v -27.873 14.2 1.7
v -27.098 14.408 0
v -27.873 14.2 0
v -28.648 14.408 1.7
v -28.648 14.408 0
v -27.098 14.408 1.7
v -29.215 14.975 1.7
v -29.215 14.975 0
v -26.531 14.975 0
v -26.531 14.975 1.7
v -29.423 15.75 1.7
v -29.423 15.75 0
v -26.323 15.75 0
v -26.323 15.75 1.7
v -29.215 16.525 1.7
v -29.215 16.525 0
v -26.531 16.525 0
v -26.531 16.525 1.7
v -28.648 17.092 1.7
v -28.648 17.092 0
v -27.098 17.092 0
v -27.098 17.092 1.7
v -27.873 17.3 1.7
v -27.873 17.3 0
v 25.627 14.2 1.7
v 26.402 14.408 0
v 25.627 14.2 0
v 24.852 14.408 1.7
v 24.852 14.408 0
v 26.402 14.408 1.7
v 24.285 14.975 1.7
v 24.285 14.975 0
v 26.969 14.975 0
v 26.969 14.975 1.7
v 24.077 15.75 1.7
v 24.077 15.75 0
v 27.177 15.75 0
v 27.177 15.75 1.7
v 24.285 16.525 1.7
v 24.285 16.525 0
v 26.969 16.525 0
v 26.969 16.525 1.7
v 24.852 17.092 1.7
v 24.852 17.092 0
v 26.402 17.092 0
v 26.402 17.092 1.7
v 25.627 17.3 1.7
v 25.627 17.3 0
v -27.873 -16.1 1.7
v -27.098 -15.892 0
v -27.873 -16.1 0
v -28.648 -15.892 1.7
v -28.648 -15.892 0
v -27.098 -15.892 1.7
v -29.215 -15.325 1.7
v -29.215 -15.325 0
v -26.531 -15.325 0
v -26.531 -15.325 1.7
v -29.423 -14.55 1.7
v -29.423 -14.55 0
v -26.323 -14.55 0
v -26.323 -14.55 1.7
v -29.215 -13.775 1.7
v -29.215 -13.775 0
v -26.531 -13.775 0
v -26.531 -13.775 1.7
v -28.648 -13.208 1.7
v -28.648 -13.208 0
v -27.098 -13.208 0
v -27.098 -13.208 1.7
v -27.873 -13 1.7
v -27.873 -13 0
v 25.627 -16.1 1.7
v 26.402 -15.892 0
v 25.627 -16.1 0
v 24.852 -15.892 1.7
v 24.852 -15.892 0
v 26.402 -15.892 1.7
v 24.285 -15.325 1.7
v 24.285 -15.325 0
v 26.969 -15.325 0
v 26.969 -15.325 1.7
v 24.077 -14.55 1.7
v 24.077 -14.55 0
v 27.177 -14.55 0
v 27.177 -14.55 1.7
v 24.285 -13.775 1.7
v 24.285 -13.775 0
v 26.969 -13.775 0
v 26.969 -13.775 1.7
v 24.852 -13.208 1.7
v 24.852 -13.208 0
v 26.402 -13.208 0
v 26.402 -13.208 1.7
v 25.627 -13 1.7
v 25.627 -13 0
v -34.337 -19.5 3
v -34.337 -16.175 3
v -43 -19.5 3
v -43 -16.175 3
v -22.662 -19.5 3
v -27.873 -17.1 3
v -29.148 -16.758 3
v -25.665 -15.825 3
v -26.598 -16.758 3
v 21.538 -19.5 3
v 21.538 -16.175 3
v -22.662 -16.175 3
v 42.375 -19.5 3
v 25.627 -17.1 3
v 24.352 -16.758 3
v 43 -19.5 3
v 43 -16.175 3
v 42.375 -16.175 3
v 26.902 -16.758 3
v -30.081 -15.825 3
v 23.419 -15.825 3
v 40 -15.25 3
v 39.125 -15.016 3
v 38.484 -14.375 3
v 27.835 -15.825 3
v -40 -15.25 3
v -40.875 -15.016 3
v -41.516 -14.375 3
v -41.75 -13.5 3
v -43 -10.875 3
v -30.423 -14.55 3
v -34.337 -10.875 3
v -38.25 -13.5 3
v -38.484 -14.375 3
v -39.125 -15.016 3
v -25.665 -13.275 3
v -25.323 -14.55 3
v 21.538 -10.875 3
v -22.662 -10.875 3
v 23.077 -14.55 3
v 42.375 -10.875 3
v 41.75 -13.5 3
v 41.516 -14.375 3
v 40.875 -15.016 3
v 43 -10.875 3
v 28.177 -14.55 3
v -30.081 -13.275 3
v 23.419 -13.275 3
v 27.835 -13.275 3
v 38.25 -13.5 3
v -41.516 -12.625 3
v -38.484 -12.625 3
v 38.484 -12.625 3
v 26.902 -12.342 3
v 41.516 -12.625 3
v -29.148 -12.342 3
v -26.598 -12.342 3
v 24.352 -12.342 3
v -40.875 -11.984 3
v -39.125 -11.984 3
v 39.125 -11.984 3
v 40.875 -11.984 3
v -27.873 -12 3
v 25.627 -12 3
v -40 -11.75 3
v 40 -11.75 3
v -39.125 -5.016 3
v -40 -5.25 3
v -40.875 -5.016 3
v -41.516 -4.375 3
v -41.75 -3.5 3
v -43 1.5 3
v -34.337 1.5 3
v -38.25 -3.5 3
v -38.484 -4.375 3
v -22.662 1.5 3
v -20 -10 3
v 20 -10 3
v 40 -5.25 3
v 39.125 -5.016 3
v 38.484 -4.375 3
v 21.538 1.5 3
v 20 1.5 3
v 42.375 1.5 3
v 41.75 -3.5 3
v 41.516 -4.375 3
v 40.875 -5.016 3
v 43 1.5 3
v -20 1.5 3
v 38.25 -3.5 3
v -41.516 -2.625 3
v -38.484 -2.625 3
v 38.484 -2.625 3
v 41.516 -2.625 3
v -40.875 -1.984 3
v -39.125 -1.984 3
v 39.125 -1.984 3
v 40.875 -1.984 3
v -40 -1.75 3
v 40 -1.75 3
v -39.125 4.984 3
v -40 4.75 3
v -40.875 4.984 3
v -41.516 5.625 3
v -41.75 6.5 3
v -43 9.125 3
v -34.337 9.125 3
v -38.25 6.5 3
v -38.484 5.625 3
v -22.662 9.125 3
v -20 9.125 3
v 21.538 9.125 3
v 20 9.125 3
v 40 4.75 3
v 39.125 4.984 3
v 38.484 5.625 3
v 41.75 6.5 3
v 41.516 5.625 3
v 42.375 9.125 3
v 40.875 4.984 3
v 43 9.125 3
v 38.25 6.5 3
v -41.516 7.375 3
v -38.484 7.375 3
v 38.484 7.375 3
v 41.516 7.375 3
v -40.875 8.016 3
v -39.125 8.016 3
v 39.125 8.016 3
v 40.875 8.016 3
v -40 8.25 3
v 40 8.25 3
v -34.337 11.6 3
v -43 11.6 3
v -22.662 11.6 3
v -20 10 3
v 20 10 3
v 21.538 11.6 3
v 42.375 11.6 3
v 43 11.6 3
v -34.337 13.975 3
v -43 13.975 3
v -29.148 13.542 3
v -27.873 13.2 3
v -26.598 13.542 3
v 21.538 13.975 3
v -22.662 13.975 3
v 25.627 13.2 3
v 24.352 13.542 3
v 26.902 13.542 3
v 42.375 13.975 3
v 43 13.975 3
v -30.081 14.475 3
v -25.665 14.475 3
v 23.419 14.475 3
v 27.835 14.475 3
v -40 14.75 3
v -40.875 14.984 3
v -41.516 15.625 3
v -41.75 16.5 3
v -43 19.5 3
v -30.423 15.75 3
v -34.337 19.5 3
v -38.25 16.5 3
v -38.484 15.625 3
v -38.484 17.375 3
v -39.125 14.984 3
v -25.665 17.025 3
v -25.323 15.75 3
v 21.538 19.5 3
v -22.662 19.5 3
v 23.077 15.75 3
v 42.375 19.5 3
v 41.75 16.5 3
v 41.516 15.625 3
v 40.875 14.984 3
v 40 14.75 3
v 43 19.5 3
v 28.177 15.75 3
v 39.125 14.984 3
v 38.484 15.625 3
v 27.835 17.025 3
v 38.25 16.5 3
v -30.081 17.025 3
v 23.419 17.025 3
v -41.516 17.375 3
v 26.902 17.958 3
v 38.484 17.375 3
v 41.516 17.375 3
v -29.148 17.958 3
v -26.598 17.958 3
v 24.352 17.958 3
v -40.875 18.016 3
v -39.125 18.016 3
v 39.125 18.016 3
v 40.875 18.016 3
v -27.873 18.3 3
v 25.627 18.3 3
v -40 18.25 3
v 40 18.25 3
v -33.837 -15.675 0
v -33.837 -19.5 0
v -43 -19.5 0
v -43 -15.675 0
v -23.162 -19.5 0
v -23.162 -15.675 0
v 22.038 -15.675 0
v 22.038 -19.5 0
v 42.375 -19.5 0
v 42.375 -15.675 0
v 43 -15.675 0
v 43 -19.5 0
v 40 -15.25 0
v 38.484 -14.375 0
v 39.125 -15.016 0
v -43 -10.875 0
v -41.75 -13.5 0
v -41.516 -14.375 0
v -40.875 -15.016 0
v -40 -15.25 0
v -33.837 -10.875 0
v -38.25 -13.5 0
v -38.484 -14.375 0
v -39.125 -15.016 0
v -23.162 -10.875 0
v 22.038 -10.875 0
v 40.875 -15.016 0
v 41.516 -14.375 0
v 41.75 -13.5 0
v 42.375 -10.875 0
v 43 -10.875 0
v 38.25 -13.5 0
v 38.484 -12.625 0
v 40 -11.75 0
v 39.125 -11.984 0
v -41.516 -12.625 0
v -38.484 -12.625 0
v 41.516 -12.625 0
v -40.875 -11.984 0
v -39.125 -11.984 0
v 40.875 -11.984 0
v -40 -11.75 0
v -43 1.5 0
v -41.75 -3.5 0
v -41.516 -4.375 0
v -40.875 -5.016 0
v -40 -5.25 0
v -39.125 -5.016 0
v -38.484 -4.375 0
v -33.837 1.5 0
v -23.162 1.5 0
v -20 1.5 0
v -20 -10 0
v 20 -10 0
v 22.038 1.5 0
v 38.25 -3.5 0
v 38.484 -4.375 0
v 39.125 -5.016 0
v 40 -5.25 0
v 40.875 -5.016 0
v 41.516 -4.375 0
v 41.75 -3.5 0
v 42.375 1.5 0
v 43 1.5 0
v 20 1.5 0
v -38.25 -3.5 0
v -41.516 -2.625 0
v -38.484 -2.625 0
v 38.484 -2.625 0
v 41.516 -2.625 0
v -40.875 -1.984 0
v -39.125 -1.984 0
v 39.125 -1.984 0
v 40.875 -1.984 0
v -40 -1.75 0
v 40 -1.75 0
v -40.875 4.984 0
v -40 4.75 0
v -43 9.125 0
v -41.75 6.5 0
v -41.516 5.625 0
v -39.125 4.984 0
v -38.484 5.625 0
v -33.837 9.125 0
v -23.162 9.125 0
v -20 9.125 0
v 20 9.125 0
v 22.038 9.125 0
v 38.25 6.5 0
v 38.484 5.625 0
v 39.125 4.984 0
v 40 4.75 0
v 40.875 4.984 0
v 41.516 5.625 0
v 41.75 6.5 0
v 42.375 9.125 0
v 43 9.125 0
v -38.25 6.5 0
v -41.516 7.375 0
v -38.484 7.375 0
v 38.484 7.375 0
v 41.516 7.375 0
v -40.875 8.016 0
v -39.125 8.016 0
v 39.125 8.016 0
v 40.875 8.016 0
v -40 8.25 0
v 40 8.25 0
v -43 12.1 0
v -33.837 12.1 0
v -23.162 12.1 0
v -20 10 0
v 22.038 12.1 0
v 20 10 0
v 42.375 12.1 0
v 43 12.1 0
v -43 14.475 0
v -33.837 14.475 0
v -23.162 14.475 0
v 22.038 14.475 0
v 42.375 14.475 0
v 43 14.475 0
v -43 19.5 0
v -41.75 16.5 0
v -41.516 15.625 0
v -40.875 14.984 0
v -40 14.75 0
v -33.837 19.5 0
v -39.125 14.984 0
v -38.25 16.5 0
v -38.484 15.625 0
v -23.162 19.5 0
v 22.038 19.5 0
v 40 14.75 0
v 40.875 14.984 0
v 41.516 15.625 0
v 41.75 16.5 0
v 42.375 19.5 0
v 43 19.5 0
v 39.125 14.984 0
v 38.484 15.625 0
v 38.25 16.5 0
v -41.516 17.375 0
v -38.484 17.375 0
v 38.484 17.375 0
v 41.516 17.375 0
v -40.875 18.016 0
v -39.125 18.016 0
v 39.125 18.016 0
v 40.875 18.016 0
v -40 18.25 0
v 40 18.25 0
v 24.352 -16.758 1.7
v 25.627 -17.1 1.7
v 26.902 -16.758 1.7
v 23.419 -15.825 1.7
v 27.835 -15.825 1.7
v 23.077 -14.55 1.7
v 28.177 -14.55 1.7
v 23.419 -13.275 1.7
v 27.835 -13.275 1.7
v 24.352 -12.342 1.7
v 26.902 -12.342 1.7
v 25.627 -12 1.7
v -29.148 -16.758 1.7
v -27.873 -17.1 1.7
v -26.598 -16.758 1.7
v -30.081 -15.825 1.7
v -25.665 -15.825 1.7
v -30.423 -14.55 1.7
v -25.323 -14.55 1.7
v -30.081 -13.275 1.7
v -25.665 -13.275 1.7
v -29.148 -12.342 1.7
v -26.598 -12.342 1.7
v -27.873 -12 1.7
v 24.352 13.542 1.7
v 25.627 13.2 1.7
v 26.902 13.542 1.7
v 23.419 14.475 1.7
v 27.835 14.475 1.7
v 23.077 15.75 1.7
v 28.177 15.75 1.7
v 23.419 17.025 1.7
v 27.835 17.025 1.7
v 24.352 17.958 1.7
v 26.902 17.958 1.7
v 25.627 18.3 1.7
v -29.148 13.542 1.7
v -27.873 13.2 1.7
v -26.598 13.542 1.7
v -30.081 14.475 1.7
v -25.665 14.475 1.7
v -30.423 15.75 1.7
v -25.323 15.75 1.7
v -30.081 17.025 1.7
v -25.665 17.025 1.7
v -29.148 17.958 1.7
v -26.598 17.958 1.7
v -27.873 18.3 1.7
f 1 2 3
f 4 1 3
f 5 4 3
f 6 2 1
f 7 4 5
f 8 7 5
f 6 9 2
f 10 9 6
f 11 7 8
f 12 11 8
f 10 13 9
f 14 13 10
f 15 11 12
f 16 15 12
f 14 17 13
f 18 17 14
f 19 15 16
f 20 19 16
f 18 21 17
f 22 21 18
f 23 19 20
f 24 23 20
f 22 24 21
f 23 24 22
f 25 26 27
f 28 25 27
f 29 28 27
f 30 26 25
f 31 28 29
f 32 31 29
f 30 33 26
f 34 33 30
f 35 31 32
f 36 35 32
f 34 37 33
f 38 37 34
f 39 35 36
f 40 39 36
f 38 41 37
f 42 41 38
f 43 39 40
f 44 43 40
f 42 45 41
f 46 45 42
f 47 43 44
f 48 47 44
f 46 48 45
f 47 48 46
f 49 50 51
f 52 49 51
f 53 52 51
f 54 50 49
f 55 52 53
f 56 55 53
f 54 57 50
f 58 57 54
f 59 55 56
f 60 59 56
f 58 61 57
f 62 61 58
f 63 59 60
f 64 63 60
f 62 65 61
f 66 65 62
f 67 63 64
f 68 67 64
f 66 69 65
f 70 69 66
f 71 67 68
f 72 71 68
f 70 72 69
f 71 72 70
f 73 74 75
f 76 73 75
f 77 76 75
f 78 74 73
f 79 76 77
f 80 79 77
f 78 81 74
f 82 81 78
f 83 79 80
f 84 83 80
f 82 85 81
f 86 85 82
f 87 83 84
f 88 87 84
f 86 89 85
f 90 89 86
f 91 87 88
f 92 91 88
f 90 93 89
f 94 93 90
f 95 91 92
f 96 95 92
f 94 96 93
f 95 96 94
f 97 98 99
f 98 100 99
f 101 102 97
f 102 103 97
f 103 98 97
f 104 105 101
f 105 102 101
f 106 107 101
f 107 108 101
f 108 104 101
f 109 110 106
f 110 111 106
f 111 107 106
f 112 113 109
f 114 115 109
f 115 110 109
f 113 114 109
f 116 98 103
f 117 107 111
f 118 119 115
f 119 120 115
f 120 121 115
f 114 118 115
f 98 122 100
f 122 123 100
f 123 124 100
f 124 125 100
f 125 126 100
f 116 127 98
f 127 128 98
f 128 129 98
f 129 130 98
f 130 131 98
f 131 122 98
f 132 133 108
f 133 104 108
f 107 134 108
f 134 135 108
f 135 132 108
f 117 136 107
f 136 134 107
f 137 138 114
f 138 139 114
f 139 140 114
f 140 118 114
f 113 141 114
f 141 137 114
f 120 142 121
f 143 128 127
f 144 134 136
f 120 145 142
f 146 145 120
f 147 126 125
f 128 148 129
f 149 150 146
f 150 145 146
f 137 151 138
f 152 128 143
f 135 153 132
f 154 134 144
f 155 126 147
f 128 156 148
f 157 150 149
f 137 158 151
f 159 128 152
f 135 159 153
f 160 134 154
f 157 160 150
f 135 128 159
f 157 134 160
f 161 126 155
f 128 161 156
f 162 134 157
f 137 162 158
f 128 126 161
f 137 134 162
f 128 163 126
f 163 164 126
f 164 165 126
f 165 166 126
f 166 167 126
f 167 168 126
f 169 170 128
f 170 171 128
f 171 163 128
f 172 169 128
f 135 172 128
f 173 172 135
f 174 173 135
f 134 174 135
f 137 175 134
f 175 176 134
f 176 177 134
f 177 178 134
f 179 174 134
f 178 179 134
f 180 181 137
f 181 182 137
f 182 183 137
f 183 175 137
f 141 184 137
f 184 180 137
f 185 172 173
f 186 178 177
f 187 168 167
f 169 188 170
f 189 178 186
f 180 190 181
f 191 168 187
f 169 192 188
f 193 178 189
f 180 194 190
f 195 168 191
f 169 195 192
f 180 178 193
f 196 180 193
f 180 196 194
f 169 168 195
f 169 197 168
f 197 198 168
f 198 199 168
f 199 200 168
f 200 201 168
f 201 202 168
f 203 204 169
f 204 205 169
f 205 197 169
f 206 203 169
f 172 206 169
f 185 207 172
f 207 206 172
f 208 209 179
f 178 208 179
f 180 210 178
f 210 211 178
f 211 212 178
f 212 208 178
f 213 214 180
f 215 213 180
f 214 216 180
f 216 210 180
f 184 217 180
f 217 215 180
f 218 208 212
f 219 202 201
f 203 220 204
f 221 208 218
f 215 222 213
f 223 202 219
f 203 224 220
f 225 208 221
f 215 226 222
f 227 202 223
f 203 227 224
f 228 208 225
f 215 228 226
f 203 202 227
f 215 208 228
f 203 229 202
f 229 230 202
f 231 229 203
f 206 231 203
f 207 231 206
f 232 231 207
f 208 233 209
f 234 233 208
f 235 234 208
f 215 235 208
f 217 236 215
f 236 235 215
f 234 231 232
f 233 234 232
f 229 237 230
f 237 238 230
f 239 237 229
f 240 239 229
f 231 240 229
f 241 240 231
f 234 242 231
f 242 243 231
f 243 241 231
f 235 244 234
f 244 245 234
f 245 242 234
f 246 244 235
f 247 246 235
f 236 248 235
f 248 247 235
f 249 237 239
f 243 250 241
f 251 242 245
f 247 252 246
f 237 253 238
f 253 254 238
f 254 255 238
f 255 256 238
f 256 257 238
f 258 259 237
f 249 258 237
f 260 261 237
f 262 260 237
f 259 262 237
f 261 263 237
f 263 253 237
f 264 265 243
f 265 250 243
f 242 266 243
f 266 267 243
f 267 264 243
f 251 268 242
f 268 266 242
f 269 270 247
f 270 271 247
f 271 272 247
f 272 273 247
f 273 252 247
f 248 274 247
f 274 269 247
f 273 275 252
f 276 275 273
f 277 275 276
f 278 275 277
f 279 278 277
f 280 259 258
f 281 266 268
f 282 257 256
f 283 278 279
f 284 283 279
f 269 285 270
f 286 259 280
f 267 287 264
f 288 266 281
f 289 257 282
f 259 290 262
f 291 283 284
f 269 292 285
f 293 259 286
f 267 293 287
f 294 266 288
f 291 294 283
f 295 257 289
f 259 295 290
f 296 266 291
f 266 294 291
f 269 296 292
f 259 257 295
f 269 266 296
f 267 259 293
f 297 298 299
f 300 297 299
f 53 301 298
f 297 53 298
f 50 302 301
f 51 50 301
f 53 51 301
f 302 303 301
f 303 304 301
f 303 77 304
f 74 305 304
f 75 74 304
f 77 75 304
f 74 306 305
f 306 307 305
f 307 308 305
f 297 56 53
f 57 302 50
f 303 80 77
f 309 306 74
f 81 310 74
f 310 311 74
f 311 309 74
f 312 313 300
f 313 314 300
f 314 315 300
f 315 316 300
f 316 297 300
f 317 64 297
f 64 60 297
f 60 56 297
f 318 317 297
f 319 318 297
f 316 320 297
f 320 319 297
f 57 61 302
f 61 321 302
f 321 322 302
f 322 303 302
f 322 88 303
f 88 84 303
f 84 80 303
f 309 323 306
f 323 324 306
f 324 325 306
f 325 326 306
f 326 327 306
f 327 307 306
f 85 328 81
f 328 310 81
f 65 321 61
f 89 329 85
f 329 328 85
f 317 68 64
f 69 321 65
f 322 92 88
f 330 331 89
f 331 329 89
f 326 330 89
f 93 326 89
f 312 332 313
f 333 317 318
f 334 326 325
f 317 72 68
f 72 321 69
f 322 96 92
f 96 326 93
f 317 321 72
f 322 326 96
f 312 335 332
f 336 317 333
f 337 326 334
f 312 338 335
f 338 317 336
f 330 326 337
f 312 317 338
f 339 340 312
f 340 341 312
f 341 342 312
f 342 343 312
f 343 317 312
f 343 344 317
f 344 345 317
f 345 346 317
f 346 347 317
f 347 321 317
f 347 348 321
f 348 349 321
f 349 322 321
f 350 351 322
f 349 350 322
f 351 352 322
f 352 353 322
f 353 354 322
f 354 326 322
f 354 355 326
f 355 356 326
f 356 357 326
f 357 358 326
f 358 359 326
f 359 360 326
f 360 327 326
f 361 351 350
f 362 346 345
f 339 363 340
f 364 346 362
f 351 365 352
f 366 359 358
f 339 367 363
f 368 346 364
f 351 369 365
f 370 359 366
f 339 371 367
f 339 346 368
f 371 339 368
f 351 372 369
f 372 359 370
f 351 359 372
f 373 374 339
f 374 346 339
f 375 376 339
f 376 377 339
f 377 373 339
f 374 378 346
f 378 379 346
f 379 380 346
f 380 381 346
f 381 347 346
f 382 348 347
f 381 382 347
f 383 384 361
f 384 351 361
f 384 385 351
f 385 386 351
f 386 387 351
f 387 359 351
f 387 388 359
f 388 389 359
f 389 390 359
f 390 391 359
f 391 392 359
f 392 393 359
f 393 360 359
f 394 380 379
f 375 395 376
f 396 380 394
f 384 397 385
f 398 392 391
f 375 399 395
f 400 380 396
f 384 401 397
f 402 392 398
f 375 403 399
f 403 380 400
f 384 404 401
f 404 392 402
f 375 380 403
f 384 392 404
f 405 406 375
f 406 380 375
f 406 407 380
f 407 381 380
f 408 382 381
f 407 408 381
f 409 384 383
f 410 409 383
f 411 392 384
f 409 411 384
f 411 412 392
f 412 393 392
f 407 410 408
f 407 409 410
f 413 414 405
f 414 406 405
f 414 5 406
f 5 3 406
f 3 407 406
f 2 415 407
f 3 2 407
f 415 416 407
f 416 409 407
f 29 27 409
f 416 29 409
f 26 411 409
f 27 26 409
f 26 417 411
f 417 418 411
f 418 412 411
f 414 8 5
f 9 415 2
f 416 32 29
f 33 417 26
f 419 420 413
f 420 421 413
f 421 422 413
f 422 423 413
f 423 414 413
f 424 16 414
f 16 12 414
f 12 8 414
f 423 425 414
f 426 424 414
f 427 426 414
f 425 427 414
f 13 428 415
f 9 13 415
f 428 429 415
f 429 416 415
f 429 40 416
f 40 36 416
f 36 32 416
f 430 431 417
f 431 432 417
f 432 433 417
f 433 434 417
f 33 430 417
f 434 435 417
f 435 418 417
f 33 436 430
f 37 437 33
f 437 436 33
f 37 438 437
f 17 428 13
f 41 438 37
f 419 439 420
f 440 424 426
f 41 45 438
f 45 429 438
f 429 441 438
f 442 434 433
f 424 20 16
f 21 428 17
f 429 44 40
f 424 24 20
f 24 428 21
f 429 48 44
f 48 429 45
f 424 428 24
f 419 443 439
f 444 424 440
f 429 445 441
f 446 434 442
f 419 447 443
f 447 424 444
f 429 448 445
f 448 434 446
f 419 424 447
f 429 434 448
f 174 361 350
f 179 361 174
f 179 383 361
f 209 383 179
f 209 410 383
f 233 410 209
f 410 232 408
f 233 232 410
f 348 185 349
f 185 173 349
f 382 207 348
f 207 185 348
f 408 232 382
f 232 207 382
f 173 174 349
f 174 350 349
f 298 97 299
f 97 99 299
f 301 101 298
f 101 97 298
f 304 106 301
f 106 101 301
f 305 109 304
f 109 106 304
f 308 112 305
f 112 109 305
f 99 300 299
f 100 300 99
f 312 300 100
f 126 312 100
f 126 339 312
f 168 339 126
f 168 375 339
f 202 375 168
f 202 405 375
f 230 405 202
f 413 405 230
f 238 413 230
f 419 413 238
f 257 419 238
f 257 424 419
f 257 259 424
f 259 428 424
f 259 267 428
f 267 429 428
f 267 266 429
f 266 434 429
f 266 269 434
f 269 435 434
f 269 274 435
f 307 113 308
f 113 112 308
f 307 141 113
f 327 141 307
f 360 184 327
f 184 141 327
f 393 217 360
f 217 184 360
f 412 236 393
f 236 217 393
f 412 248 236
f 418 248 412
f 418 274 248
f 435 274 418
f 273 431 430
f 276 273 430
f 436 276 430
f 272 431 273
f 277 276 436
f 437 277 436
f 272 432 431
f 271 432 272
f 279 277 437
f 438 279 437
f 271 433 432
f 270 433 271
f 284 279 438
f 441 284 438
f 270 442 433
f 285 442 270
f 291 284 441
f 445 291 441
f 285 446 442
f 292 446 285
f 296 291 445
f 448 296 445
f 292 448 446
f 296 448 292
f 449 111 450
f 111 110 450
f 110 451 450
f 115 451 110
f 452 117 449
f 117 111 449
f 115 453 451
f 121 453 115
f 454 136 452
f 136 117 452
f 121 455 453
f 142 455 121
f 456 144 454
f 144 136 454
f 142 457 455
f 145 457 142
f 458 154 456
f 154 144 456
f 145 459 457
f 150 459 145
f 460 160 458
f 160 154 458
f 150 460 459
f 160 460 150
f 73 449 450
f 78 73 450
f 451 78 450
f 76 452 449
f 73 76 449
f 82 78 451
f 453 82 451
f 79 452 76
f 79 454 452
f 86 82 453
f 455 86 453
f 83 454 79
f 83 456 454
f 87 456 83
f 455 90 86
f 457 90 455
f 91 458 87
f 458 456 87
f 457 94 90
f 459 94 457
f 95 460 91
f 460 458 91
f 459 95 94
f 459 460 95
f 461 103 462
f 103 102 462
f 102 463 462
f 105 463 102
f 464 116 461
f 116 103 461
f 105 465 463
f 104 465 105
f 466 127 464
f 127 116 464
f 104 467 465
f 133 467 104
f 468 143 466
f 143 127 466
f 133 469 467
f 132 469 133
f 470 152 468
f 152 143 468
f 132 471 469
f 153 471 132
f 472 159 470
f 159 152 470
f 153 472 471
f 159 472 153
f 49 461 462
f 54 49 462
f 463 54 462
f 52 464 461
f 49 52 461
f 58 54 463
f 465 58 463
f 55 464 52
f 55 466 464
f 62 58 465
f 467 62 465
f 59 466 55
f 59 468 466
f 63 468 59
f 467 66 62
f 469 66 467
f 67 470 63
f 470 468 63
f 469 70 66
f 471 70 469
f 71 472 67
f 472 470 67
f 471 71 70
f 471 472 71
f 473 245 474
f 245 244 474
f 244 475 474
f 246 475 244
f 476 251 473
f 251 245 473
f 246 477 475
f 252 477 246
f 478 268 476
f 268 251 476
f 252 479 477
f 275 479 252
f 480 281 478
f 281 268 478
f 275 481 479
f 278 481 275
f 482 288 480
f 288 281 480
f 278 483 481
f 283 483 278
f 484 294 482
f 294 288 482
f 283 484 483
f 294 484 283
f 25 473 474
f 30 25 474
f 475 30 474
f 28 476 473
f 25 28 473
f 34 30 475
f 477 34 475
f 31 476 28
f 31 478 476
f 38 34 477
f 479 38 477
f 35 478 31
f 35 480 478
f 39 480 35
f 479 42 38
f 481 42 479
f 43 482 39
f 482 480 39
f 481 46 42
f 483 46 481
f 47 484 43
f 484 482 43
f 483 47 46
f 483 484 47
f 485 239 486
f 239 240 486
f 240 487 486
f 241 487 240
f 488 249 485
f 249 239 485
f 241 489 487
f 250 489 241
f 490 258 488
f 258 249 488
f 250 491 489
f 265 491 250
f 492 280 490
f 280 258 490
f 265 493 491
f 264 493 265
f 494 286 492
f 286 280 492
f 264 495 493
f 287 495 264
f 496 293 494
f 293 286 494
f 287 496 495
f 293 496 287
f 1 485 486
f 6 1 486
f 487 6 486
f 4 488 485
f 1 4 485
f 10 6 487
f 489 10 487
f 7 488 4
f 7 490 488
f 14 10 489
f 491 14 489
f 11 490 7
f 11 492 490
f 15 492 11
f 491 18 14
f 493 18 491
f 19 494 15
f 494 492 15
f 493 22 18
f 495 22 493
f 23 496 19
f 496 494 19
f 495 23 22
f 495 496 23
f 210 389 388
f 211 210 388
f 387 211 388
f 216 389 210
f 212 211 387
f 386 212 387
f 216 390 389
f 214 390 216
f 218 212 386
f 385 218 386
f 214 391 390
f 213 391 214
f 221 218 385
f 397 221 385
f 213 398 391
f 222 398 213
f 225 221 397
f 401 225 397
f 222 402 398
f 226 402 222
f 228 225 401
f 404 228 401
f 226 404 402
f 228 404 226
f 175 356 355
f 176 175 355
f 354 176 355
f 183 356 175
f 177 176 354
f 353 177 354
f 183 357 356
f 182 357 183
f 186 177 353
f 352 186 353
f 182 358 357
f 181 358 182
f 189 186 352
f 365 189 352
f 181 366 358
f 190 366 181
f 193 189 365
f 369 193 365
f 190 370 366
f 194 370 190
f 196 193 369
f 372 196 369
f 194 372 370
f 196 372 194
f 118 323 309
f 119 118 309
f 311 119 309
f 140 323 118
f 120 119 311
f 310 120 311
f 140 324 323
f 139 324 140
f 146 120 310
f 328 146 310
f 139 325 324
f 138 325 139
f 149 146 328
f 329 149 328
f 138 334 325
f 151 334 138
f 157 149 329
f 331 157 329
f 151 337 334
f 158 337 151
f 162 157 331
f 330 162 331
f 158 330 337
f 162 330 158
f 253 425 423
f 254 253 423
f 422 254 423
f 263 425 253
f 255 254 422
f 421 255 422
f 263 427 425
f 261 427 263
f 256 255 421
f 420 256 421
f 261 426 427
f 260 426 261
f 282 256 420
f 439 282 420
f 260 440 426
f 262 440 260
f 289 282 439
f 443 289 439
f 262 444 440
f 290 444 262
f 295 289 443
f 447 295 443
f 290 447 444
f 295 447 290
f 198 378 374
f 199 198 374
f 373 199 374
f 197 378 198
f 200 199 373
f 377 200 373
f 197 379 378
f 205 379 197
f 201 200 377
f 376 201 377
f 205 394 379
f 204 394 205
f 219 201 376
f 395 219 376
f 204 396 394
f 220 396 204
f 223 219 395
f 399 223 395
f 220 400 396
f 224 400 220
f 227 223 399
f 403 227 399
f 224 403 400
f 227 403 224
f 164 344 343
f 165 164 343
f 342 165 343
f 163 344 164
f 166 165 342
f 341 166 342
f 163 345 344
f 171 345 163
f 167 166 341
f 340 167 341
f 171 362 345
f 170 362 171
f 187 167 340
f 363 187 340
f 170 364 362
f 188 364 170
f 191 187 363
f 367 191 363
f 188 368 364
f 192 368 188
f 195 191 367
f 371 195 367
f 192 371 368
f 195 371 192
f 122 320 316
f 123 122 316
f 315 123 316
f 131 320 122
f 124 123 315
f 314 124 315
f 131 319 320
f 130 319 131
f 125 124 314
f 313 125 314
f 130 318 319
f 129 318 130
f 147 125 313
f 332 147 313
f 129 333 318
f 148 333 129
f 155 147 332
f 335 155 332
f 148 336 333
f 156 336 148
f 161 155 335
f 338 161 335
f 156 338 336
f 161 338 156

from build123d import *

# Parameters (mm, degrees)
SKETCH1_W            = 62
SKETCH1_H            = 38
SKETCH1_R            = 1.55
SKETCH1_W_2          = 40
SKETCH1_H_2          = 20
BOSS_EXTRUDE1_DEPTH  = 3
SKETCH3_W            = 86
SKETCH3_H            = 39
SKETCH3_W_2          = 62
SKETCH3_H_2          = 38
BOSS_EXTRUDE2_DEPTH  = 3
SKETCH4_R            = 1.75
CUT_EXTRUDE1_DEPTH   = 3
SKETCH5_R            = 2.55
CUT_EXTRUDE2_DEPTH   = 1.3
LPATTERN2_COUNT      = 4
LPATTERN2_PITCH      = 10
LPATTERN2_COUNT_DIR2 = 9
LPATTERN2_PITCH_DIR2 = 10


with BuildPart() as part:
    # Sketch1 → Boss-Extrude1 (new body)
    with BuildSketch(Plane.XY):
        Rectangle(SKETCH1_W, SKETCH1_H)
        with Locations((-27.873084587, 15.75)):
            Circle(SKETCH1_R, mode=Mode.SUBTRACT)
        with Locations((25.626915413, 15.75)):
            Circle(SKETCH1_R, mode=Mode.SUBTRACT)
        with Locations((-27.873084587, -14.55)):
            Circle(SKETCH1_R, mode=Mode.SUBTRACT)
        with Locations((25.626915413, -14.55)):
            Circle(SKETCH1_R, mode=Mode.SUBTRACT)
        Rectangle(SKETCH1_W_2, SKETCH1_H_2, mode=Mode.SUBTRACT)
    extrude(amount=BOSS_EXTRUDE1_DEPTH)

    # Sketch3 → Boss-Extrude2 (add)
    with BuildSketch(Plane.XY.offset(3)):
        Rectangle(SKETCH3_W, SKETCH3_H)
        Rectangle(SKETCH3_W_2, SKETCH3_H_2, mode=Mode.SUBTRACT)
    extrude(amount=-BOSS_EXTRUDE2_DEPTH)

    # Sketch4 → Cut-Extrude1 (cut)
    with BuildSketch(Plane(origin=(0, 0, 0), x_dir=(-1, 0, 0), z_dir=(0, 0, -1))):
        with Locations((-40, 16.5)):
            Circle(SKETCH4_R)
    cut_extrude1 = extrude(amount=-CUT_EXTRUDE1_DEPTH, mode=Mode.SUBTRACT)

    # Sketch5 → Cut-Extrude2 (cut)
    with BuildSketch(Plane.XY.offset(3)):
        with Locations((-27.873084587, 15.75)):
            Circle(SKETCH5_R)
        with Locations((-27.873084587, -14.55)):
            Circle(SKETCH5_R)
        with Locations((25.626915413, -14.55)):
            Circle(SKETCH5_R)
        with Locations((25.626915413, 15.75)):
            Circle(SKETCH5_R)
    extrude(amount=-CUT_EXTRUDE2_DEPTH, mode=Mode.SUBTRACT)

    # LPattern2: Cut-Extrude1 4 × 9, 28 skipped
    with Locations(*[(-j * LPATTERN2_PITCH_DIR2, -i * LPATTERN2_PITCH, 0) for i in range(LPATTERN2_COUNT) for j in range(LPATTERN2_COUNT_DIR2) if (i, j) not in ((0, 0), (0, 1), (0, 2), (0, 3), (0, 4), (0, 5), (0, 6), (0, 7), (1, 1), (1, 2), (1, 3), (1, 4), (1, 5), (1, 6), (1, 7), (2, 1), (2, 2), (2, 3), (2, 4), (2, 5), (2, 6), (2, 7), (3, 1), (3, 2), (3, 3), (3, 4), (3, 5), (3, 6), (3, 7))]):
        add(cut_extrude1, mode=Mode.SUBTRACT)


solid = part.part
